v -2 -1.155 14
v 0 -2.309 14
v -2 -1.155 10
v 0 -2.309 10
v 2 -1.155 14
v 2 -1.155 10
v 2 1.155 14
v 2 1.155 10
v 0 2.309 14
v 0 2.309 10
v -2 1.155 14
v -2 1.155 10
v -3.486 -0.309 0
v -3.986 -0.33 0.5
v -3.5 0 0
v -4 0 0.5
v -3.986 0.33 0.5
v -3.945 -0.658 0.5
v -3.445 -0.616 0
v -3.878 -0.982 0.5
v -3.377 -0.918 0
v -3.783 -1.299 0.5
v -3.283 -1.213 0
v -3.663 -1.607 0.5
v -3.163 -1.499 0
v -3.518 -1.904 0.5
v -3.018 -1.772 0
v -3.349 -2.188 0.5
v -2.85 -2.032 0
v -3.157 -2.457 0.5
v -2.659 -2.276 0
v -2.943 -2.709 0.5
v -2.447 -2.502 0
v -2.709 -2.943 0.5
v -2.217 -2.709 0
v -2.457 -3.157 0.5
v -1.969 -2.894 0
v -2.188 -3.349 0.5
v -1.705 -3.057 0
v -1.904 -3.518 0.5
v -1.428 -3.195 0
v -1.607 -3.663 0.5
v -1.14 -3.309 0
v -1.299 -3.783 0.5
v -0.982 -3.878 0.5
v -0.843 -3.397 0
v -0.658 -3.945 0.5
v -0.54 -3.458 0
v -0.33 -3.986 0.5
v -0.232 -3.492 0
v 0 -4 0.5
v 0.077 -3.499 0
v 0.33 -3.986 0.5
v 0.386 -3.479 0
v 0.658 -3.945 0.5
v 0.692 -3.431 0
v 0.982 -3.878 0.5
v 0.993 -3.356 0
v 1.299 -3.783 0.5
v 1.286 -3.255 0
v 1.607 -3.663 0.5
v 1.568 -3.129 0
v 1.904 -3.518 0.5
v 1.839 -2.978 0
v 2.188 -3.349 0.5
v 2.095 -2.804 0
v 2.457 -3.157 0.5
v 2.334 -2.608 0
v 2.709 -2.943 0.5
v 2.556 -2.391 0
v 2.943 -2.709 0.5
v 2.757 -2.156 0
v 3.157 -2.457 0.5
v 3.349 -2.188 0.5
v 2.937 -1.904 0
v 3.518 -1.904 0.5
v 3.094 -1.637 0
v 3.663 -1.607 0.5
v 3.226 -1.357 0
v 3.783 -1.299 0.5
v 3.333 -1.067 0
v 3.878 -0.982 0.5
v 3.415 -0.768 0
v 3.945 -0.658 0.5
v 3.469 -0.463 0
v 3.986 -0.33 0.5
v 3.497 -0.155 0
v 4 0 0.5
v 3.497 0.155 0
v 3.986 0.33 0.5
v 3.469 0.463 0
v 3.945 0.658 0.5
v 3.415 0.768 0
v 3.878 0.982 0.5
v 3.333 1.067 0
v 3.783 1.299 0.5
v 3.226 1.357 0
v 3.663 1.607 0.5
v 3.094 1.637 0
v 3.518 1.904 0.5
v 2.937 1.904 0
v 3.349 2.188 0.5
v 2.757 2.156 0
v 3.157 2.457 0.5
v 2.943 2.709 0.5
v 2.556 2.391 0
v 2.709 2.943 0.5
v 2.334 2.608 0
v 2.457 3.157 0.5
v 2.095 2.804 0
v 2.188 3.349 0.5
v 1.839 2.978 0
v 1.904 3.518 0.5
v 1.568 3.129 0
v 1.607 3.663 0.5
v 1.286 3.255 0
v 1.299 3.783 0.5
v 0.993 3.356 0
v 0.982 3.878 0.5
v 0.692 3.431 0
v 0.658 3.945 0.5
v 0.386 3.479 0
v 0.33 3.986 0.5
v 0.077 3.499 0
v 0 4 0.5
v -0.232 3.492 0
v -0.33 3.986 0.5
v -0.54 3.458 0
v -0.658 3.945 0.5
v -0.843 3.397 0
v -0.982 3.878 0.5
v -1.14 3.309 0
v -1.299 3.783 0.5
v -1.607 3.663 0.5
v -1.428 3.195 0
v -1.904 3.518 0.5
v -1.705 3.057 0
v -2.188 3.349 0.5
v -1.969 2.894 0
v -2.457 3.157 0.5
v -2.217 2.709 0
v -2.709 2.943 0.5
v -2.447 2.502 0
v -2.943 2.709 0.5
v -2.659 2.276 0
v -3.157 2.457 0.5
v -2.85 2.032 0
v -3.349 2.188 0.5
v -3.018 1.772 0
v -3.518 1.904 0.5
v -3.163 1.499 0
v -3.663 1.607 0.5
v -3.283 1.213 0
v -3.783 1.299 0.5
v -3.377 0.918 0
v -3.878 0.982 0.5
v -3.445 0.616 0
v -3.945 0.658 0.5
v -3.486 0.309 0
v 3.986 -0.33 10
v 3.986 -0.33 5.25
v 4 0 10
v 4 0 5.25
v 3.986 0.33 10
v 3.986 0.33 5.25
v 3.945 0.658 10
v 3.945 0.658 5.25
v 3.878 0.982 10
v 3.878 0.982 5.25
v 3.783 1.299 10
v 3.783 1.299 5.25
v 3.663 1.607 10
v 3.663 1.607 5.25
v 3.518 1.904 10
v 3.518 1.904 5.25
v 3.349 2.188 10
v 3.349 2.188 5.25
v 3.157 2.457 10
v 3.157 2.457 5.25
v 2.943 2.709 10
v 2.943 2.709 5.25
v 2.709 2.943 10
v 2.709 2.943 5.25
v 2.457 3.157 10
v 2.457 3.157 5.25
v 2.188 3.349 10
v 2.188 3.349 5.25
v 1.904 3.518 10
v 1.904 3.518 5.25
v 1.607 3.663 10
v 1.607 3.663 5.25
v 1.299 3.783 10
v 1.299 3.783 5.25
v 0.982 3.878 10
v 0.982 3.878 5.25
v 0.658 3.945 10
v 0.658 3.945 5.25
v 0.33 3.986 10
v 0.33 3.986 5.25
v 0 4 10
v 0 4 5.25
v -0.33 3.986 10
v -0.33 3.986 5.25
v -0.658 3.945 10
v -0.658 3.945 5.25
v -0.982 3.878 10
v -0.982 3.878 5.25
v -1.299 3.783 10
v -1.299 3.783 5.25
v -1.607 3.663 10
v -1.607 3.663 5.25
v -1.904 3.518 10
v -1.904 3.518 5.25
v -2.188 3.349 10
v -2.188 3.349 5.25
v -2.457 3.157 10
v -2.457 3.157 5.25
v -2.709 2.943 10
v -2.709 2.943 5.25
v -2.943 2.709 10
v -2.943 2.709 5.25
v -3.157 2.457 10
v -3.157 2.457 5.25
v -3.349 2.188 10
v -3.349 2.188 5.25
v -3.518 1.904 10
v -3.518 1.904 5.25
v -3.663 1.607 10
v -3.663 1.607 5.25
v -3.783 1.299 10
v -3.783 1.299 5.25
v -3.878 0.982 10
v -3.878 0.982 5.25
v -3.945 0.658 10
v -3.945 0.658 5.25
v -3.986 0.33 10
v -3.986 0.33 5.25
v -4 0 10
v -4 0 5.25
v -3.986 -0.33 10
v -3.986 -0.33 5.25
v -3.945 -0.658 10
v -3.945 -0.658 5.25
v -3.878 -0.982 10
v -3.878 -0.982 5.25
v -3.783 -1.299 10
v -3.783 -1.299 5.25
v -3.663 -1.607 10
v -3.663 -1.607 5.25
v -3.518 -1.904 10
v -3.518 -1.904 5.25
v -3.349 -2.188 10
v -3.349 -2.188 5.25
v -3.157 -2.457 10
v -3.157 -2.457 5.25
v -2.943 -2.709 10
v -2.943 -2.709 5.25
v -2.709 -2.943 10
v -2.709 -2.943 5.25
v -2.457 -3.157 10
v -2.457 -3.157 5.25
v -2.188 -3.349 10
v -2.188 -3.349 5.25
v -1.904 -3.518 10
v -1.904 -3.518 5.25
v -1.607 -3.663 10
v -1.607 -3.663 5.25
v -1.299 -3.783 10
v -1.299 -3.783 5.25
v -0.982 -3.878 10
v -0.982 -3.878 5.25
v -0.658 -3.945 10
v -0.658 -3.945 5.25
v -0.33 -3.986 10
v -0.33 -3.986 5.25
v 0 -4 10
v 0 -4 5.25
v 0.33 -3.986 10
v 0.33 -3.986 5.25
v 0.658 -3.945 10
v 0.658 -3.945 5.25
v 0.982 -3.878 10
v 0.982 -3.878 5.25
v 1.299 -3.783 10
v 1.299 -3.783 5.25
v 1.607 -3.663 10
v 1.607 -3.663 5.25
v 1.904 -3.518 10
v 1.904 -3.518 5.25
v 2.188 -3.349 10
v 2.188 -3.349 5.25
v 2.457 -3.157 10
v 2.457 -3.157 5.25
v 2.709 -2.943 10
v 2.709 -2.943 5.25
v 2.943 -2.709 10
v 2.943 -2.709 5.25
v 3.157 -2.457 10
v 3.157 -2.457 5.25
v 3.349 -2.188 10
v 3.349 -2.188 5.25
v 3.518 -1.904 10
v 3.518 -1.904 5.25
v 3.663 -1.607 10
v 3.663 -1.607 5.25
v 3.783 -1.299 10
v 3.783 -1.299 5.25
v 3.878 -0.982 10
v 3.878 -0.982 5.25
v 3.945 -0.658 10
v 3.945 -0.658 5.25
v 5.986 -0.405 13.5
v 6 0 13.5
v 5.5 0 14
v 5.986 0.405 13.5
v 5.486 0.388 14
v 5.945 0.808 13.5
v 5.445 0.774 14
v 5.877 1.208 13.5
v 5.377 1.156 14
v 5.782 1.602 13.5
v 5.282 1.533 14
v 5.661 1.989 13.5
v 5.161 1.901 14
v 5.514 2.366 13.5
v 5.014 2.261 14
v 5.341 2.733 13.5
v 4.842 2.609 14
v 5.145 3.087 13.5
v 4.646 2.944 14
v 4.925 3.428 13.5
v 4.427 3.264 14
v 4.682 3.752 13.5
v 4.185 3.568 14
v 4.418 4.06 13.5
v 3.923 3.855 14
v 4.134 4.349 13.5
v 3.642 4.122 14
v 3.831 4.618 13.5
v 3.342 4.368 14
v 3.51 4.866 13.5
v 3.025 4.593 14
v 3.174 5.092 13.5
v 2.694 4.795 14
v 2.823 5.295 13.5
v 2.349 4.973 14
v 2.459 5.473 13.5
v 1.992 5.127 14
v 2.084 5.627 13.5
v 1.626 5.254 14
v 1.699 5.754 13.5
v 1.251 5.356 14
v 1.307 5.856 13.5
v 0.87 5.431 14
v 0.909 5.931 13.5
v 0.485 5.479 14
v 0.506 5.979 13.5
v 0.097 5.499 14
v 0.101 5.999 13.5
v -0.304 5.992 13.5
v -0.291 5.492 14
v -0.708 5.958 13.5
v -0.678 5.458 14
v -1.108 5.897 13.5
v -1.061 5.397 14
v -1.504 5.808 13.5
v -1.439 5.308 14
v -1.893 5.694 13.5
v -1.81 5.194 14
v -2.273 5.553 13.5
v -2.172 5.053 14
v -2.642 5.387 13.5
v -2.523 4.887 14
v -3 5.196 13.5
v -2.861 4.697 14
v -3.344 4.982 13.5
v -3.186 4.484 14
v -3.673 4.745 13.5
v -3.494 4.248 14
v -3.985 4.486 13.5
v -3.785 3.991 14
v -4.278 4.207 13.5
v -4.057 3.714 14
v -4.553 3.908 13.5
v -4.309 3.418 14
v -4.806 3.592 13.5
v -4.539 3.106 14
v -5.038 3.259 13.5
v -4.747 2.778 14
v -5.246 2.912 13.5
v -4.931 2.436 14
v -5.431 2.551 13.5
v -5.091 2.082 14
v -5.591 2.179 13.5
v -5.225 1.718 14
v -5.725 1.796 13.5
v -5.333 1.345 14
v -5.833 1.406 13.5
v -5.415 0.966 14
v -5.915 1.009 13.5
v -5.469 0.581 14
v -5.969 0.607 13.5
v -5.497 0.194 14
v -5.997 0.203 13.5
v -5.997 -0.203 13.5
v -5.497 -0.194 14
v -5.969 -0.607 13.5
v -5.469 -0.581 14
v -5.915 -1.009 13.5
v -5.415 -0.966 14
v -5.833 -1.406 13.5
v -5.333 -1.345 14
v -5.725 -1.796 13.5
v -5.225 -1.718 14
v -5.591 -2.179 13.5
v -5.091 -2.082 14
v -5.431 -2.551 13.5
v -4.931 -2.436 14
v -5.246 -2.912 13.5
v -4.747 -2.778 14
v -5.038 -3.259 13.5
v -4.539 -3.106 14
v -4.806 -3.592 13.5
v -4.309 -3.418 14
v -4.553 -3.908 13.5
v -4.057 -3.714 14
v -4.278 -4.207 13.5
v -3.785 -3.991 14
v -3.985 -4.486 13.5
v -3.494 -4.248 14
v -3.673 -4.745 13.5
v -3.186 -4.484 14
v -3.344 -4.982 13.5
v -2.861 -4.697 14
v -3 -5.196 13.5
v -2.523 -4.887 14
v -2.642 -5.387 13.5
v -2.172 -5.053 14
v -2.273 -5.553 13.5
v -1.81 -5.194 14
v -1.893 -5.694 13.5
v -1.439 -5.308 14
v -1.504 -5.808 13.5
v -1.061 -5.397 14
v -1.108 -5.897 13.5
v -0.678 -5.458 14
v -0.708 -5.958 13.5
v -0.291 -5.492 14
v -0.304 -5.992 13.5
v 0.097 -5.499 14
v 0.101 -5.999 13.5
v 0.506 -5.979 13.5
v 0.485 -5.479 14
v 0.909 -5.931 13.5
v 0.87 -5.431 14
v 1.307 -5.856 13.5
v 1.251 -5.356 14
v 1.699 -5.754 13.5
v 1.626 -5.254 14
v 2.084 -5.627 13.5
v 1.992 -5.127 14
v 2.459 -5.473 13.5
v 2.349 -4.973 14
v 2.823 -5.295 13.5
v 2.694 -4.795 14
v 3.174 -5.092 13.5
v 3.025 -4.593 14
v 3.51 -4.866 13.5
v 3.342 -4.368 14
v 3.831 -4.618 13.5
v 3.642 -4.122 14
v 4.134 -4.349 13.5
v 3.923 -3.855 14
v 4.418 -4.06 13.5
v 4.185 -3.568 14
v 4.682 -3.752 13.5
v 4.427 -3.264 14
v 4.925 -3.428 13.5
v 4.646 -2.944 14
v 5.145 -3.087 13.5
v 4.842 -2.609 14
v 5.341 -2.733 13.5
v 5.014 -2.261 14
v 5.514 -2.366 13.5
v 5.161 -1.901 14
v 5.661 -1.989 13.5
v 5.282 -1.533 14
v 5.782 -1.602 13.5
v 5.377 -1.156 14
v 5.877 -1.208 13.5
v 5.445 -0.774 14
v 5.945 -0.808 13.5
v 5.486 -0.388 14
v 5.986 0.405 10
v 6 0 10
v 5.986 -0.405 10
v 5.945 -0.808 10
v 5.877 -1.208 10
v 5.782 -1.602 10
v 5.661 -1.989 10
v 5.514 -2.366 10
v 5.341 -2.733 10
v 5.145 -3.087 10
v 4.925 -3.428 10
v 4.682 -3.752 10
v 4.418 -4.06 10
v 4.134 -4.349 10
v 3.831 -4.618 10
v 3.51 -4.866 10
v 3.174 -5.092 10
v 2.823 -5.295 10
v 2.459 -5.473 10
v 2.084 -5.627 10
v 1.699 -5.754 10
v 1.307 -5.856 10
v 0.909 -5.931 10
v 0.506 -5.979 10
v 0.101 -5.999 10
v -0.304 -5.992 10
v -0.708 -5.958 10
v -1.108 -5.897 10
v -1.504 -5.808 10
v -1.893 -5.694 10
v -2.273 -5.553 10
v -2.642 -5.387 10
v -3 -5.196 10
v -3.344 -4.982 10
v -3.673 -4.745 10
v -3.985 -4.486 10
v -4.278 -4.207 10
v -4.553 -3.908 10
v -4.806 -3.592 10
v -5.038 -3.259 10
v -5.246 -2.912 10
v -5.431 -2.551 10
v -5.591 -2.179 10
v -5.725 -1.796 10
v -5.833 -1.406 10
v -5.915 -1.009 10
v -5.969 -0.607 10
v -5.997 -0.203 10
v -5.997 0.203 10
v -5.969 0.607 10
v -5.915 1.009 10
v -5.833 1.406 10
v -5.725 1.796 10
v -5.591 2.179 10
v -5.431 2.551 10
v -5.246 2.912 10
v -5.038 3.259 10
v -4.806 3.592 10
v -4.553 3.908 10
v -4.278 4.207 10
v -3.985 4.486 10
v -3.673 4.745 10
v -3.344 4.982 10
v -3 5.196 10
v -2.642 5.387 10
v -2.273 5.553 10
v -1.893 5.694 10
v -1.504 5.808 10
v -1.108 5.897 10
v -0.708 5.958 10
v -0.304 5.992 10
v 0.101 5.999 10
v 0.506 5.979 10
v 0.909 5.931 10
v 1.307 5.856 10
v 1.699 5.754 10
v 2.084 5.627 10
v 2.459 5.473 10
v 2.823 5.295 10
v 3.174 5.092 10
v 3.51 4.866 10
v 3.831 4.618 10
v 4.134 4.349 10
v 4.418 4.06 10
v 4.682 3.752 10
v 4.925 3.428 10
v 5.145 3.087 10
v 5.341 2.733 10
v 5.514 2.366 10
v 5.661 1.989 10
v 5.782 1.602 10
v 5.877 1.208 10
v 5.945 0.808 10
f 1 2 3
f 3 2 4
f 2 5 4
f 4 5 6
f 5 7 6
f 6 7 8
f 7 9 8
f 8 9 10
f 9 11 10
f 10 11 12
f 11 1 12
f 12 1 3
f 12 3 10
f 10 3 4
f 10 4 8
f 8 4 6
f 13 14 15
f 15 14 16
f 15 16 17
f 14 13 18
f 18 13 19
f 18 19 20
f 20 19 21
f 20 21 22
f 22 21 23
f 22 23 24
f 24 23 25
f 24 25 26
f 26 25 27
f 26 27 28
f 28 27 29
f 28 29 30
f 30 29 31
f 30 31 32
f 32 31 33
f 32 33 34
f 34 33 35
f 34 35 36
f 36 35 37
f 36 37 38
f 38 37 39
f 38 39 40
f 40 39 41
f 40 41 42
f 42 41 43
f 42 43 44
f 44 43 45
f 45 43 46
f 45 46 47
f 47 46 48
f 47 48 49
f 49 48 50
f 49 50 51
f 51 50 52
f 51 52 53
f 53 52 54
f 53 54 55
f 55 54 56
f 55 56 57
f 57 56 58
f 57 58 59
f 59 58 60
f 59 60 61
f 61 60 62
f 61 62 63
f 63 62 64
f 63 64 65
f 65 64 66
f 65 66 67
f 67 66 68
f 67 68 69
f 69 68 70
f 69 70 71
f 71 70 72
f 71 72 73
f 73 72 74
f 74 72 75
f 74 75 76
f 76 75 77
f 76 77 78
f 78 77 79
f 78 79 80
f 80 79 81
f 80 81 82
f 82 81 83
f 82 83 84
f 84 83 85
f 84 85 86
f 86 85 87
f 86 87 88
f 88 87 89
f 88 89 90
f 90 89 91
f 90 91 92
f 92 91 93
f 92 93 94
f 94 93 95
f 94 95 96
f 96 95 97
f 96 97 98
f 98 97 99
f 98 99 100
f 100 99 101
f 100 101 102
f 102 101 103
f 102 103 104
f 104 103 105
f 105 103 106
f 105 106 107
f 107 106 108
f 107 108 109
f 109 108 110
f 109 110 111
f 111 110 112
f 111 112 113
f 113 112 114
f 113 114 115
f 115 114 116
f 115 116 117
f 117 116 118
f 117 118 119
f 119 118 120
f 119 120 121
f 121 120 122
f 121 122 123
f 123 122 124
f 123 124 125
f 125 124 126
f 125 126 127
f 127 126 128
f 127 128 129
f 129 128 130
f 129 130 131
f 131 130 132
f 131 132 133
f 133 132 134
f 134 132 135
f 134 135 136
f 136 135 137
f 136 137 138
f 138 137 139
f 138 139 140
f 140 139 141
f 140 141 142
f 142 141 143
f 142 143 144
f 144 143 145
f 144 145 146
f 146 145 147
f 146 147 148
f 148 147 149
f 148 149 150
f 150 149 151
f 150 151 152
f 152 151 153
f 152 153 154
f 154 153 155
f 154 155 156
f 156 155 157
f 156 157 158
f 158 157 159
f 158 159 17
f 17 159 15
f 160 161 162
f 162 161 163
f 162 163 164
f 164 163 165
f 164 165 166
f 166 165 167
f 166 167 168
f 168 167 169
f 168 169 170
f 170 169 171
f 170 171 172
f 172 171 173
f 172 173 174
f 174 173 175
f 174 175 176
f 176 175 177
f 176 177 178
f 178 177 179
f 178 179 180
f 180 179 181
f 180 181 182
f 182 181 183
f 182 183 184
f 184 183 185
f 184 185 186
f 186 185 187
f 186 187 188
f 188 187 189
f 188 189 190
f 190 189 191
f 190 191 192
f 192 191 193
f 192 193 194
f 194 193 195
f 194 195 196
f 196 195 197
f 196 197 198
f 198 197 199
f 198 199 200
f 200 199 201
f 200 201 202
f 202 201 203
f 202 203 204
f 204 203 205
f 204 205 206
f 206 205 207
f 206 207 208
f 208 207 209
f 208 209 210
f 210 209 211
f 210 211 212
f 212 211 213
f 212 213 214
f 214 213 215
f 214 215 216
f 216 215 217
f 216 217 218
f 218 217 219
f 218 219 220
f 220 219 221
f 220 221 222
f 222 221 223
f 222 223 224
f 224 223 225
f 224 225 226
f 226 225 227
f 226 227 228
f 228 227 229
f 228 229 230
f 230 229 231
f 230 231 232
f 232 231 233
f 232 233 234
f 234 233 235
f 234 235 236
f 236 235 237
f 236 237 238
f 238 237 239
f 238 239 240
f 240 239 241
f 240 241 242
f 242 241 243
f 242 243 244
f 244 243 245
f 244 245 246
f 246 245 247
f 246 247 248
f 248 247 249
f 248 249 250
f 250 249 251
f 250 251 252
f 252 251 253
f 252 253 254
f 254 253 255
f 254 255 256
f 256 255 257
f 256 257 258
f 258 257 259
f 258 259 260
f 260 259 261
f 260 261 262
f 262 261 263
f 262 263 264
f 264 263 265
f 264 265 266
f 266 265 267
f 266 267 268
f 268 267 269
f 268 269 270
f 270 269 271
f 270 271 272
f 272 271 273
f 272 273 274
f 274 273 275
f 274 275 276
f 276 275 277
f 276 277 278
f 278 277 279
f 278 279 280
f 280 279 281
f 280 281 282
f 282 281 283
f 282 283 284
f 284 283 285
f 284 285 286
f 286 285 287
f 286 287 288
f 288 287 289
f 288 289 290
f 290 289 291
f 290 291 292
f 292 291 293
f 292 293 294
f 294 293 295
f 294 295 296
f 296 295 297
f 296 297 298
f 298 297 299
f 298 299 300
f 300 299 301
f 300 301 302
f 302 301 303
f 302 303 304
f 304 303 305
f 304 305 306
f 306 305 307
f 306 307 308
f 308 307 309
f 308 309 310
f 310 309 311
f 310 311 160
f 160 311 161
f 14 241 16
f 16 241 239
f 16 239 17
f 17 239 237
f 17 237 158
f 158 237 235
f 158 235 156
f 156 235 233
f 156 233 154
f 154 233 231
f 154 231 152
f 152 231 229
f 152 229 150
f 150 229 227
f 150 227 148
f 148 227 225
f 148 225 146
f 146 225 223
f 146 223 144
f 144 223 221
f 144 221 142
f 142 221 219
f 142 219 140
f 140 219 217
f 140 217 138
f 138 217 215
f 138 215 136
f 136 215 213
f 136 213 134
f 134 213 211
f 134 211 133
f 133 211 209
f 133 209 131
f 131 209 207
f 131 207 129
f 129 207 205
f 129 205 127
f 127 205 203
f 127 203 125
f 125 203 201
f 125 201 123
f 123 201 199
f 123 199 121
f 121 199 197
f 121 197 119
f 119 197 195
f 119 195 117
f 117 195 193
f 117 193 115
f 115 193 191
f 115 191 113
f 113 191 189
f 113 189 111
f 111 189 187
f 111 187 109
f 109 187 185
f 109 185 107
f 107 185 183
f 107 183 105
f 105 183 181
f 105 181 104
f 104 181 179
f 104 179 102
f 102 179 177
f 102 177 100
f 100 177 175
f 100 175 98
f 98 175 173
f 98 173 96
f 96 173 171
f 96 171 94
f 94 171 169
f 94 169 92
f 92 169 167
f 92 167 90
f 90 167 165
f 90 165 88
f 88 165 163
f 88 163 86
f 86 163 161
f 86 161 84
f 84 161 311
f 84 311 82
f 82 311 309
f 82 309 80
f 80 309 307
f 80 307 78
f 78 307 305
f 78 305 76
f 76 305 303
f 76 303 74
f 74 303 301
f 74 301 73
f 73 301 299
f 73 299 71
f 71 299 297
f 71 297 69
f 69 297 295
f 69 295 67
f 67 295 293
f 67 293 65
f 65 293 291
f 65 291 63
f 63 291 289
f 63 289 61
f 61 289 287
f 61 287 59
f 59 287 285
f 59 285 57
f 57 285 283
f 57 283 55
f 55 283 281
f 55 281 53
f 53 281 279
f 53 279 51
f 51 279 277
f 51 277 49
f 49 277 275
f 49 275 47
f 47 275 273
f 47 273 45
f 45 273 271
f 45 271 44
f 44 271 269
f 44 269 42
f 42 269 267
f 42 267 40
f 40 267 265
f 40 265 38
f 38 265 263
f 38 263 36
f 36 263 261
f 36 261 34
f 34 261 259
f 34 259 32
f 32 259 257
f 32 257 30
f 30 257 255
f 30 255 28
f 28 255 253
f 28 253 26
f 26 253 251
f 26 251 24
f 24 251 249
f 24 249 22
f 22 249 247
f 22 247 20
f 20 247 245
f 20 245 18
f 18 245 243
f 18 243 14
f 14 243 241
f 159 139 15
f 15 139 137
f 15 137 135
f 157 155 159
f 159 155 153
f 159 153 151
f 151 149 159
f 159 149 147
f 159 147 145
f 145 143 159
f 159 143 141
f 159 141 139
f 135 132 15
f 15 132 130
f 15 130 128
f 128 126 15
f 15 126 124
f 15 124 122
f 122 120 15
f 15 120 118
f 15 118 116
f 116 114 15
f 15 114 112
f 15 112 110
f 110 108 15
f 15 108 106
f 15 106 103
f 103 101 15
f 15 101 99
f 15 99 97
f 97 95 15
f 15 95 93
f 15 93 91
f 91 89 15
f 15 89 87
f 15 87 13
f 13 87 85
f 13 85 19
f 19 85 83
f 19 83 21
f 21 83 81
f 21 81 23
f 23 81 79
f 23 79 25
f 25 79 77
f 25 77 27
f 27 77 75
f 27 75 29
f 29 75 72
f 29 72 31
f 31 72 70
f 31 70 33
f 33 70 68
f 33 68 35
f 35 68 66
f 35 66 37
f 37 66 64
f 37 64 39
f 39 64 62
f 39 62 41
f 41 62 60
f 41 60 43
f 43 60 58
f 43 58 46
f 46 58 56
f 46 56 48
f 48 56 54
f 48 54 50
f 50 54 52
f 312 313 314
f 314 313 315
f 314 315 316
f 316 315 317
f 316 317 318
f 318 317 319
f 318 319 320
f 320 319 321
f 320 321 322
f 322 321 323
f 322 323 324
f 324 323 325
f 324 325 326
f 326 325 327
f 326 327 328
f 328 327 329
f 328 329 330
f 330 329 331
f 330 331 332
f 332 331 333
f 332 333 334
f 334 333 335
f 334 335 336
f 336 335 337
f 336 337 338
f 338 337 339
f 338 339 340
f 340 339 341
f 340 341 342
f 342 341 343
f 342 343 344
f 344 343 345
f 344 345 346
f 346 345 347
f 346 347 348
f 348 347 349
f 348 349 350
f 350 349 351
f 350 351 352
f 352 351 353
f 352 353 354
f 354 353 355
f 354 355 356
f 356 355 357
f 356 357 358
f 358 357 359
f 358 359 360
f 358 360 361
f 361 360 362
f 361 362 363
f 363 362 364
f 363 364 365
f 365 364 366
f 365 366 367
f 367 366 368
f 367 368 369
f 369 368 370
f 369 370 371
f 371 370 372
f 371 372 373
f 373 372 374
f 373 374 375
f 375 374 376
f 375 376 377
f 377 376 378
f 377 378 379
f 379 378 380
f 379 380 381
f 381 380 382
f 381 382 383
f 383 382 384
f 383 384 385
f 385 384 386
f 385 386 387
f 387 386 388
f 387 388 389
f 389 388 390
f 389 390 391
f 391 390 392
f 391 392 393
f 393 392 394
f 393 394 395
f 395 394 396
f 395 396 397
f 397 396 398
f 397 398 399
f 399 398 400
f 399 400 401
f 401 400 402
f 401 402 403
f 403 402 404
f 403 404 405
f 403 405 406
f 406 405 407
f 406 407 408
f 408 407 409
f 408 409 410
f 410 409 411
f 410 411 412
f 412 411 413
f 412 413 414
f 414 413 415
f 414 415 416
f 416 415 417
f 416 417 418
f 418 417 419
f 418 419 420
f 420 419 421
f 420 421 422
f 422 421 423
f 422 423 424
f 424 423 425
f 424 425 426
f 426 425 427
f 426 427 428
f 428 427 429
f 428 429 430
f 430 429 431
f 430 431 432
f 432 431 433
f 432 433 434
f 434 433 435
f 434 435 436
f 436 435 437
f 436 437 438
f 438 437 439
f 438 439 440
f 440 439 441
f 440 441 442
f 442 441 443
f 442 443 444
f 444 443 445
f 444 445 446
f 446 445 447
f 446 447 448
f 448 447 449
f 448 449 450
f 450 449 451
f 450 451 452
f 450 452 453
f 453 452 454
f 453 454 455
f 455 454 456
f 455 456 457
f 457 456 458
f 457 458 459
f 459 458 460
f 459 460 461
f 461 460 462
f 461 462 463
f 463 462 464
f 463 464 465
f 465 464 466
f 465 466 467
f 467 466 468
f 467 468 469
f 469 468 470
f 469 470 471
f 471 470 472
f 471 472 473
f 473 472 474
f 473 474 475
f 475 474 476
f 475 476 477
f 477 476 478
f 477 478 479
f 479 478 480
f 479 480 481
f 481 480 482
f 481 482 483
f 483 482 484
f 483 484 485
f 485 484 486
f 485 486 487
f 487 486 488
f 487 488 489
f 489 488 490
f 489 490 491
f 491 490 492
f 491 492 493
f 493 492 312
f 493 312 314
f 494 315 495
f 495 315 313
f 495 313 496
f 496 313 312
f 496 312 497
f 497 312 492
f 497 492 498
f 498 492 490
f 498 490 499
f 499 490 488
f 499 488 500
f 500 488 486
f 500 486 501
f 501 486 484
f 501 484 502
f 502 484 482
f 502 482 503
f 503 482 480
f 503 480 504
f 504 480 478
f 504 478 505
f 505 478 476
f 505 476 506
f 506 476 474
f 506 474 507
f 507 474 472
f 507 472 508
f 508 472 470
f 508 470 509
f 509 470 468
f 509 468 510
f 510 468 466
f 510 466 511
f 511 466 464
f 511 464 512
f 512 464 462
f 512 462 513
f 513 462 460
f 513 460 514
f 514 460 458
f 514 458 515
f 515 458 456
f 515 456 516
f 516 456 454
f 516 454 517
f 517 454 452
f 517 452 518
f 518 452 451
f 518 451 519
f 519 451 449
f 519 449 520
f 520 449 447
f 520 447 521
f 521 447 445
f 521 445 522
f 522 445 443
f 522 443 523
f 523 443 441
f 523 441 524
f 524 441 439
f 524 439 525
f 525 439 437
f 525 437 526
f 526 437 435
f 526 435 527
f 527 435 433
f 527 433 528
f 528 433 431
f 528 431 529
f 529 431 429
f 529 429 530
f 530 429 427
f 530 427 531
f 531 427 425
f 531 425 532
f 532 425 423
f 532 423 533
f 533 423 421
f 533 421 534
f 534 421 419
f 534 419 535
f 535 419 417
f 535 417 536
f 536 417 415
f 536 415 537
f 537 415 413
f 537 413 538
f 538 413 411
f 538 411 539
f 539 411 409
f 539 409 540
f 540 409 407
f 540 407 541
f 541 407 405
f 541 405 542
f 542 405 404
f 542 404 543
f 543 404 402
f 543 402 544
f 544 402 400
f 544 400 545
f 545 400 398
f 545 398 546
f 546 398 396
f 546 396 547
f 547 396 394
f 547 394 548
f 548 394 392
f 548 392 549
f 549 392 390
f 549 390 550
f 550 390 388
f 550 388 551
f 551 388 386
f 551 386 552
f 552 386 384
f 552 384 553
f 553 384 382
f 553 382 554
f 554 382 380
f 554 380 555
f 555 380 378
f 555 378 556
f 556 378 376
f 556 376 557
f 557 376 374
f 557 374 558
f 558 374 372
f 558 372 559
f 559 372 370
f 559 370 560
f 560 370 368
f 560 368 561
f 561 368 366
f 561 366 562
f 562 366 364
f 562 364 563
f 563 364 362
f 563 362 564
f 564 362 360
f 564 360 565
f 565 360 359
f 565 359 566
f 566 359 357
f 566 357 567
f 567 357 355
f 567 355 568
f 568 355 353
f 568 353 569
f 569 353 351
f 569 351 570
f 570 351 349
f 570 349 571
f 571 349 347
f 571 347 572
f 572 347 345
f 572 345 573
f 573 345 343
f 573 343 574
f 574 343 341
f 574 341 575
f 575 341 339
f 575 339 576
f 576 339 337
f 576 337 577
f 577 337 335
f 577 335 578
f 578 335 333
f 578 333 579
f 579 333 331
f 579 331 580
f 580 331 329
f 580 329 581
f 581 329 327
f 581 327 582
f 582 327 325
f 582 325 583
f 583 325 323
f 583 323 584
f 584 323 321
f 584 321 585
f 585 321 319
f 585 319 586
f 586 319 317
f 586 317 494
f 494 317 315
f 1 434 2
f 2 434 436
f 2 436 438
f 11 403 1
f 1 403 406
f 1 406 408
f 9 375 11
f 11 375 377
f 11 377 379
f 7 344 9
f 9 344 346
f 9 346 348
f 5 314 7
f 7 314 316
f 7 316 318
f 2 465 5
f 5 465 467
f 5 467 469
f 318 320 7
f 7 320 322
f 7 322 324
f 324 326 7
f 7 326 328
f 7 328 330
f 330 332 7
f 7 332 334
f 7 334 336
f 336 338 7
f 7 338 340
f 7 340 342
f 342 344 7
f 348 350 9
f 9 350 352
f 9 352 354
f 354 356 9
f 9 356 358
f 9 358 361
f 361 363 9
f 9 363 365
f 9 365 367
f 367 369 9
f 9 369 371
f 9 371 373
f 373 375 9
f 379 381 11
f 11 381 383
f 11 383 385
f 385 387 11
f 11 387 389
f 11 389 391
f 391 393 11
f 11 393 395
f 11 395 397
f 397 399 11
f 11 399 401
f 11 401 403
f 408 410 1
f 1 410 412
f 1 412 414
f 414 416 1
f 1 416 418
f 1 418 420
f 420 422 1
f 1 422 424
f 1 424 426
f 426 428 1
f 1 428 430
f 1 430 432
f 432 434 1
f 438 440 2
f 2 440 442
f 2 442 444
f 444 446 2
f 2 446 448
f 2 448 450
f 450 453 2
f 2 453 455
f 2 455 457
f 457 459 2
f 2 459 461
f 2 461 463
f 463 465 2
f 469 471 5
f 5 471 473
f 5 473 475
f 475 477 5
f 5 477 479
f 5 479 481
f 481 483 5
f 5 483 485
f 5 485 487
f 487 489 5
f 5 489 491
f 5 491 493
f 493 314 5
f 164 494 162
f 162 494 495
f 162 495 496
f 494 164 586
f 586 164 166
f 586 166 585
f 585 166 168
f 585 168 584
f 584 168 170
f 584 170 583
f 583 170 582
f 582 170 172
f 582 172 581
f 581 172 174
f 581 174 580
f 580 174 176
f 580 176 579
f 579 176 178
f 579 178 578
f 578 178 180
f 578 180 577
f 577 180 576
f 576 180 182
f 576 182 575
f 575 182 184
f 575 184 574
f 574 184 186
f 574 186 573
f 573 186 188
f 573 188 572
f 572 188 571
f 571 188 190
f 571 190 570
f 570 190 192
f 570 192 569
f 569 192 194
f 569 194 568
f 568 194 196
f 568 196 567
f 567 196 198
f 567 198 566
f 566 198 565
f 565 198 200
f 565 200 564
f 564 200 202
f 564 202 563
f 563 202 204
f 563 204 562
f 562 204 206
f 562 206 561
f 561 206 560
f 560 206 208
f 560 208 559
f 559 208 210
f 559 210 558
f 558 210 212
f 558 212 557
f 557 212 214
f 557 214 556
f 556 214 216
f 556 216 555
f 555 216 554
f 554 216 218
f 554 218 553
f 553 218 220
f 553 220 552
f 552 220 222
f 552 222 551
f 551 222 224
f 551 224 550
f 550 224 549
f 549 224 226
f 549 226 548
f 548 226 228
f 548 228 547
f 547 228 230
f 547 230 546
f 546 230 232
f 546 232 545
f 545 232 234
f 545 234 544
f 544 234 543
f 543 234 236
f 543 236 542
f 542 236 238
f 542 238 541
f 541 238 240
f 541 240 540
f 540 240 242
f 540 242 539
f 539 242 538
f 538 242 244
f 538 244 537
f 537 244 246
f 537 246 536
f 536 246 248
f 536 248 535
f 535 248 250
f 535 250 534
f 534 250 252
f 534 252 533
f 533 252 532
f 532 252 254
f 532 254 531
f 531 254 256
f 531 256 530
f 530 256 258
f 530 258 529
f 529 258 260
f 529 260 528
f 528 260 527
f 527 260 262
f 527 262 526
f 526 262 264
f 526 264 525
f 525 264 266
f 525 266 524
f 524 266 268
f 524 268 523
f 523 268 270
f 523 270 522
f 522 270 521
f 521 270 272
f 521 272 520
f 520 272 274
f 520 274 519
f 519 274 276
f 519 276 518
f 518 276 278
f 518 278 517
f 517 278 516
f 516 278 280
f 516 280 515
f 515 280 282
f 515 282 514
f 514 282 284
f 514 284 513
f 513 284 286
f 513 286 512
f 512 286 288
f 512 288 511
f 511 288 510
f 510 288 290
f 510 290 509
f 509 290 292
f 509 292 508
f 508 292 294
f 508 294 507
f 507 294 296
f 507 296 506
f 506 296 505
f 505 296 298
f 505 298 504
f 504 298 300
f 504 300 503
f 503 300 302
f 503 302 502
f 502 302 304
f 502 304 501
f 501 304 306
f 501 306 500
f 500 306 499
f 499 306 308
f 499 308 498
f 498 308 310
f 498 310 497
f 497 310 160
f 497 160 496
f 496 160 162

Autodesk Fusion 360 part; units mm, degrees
sketch "Sketch1" plane through (0, 0, 0) normal (0, 0, 1) x (1, 0, 0)
  circle A0 centre (0, 0) radius 4
extrude "Extrude1" add sketch "Sketch1" along normal blind 14
sketch "Sketch2" plane through (0, 0, 14) normal (0, 0, 1) x (-1, 0, 0)
  circle A0 centre (0, 0) radius 4
  circle A1 centre (0, 0) radius 6
extrude "Extrude2" add sketch "Sketch2" against normal blind 4
chamfer "Chamfer1" distance 0.5 angle 45 1 edges at (5.594, 2.1697, 14)
chamfer "Chamfer2" distance 0.5 angle 45 1 edges at (-3.7293, -1.4465, 0)
sketch "Sketch3" plane through (0, 0, 14) normal (0, 0, 1) x (-1, 0, 0)
  circle A0 centre (0, 0) radius 5.5
  line L0 (2, -1.1547) -> (2, 1.1547)
  line L1 (-2, 1.1547) -> (-2, -1.1547)
  line L2 (2, -1.1547) -> (0, -2.3094)
  line L3 (0, -2.3094) -> (-2, -1.1547)
  line L4 (2, 1.1547) -> (0, 2.3094)
  line L5 (-2, 1.1547) -> (0, 2.3094)
extrude "Extrude3" cut sketch "Sketch3" against normal blind 4 contours L0 L1 L2 L3 L4 L5
